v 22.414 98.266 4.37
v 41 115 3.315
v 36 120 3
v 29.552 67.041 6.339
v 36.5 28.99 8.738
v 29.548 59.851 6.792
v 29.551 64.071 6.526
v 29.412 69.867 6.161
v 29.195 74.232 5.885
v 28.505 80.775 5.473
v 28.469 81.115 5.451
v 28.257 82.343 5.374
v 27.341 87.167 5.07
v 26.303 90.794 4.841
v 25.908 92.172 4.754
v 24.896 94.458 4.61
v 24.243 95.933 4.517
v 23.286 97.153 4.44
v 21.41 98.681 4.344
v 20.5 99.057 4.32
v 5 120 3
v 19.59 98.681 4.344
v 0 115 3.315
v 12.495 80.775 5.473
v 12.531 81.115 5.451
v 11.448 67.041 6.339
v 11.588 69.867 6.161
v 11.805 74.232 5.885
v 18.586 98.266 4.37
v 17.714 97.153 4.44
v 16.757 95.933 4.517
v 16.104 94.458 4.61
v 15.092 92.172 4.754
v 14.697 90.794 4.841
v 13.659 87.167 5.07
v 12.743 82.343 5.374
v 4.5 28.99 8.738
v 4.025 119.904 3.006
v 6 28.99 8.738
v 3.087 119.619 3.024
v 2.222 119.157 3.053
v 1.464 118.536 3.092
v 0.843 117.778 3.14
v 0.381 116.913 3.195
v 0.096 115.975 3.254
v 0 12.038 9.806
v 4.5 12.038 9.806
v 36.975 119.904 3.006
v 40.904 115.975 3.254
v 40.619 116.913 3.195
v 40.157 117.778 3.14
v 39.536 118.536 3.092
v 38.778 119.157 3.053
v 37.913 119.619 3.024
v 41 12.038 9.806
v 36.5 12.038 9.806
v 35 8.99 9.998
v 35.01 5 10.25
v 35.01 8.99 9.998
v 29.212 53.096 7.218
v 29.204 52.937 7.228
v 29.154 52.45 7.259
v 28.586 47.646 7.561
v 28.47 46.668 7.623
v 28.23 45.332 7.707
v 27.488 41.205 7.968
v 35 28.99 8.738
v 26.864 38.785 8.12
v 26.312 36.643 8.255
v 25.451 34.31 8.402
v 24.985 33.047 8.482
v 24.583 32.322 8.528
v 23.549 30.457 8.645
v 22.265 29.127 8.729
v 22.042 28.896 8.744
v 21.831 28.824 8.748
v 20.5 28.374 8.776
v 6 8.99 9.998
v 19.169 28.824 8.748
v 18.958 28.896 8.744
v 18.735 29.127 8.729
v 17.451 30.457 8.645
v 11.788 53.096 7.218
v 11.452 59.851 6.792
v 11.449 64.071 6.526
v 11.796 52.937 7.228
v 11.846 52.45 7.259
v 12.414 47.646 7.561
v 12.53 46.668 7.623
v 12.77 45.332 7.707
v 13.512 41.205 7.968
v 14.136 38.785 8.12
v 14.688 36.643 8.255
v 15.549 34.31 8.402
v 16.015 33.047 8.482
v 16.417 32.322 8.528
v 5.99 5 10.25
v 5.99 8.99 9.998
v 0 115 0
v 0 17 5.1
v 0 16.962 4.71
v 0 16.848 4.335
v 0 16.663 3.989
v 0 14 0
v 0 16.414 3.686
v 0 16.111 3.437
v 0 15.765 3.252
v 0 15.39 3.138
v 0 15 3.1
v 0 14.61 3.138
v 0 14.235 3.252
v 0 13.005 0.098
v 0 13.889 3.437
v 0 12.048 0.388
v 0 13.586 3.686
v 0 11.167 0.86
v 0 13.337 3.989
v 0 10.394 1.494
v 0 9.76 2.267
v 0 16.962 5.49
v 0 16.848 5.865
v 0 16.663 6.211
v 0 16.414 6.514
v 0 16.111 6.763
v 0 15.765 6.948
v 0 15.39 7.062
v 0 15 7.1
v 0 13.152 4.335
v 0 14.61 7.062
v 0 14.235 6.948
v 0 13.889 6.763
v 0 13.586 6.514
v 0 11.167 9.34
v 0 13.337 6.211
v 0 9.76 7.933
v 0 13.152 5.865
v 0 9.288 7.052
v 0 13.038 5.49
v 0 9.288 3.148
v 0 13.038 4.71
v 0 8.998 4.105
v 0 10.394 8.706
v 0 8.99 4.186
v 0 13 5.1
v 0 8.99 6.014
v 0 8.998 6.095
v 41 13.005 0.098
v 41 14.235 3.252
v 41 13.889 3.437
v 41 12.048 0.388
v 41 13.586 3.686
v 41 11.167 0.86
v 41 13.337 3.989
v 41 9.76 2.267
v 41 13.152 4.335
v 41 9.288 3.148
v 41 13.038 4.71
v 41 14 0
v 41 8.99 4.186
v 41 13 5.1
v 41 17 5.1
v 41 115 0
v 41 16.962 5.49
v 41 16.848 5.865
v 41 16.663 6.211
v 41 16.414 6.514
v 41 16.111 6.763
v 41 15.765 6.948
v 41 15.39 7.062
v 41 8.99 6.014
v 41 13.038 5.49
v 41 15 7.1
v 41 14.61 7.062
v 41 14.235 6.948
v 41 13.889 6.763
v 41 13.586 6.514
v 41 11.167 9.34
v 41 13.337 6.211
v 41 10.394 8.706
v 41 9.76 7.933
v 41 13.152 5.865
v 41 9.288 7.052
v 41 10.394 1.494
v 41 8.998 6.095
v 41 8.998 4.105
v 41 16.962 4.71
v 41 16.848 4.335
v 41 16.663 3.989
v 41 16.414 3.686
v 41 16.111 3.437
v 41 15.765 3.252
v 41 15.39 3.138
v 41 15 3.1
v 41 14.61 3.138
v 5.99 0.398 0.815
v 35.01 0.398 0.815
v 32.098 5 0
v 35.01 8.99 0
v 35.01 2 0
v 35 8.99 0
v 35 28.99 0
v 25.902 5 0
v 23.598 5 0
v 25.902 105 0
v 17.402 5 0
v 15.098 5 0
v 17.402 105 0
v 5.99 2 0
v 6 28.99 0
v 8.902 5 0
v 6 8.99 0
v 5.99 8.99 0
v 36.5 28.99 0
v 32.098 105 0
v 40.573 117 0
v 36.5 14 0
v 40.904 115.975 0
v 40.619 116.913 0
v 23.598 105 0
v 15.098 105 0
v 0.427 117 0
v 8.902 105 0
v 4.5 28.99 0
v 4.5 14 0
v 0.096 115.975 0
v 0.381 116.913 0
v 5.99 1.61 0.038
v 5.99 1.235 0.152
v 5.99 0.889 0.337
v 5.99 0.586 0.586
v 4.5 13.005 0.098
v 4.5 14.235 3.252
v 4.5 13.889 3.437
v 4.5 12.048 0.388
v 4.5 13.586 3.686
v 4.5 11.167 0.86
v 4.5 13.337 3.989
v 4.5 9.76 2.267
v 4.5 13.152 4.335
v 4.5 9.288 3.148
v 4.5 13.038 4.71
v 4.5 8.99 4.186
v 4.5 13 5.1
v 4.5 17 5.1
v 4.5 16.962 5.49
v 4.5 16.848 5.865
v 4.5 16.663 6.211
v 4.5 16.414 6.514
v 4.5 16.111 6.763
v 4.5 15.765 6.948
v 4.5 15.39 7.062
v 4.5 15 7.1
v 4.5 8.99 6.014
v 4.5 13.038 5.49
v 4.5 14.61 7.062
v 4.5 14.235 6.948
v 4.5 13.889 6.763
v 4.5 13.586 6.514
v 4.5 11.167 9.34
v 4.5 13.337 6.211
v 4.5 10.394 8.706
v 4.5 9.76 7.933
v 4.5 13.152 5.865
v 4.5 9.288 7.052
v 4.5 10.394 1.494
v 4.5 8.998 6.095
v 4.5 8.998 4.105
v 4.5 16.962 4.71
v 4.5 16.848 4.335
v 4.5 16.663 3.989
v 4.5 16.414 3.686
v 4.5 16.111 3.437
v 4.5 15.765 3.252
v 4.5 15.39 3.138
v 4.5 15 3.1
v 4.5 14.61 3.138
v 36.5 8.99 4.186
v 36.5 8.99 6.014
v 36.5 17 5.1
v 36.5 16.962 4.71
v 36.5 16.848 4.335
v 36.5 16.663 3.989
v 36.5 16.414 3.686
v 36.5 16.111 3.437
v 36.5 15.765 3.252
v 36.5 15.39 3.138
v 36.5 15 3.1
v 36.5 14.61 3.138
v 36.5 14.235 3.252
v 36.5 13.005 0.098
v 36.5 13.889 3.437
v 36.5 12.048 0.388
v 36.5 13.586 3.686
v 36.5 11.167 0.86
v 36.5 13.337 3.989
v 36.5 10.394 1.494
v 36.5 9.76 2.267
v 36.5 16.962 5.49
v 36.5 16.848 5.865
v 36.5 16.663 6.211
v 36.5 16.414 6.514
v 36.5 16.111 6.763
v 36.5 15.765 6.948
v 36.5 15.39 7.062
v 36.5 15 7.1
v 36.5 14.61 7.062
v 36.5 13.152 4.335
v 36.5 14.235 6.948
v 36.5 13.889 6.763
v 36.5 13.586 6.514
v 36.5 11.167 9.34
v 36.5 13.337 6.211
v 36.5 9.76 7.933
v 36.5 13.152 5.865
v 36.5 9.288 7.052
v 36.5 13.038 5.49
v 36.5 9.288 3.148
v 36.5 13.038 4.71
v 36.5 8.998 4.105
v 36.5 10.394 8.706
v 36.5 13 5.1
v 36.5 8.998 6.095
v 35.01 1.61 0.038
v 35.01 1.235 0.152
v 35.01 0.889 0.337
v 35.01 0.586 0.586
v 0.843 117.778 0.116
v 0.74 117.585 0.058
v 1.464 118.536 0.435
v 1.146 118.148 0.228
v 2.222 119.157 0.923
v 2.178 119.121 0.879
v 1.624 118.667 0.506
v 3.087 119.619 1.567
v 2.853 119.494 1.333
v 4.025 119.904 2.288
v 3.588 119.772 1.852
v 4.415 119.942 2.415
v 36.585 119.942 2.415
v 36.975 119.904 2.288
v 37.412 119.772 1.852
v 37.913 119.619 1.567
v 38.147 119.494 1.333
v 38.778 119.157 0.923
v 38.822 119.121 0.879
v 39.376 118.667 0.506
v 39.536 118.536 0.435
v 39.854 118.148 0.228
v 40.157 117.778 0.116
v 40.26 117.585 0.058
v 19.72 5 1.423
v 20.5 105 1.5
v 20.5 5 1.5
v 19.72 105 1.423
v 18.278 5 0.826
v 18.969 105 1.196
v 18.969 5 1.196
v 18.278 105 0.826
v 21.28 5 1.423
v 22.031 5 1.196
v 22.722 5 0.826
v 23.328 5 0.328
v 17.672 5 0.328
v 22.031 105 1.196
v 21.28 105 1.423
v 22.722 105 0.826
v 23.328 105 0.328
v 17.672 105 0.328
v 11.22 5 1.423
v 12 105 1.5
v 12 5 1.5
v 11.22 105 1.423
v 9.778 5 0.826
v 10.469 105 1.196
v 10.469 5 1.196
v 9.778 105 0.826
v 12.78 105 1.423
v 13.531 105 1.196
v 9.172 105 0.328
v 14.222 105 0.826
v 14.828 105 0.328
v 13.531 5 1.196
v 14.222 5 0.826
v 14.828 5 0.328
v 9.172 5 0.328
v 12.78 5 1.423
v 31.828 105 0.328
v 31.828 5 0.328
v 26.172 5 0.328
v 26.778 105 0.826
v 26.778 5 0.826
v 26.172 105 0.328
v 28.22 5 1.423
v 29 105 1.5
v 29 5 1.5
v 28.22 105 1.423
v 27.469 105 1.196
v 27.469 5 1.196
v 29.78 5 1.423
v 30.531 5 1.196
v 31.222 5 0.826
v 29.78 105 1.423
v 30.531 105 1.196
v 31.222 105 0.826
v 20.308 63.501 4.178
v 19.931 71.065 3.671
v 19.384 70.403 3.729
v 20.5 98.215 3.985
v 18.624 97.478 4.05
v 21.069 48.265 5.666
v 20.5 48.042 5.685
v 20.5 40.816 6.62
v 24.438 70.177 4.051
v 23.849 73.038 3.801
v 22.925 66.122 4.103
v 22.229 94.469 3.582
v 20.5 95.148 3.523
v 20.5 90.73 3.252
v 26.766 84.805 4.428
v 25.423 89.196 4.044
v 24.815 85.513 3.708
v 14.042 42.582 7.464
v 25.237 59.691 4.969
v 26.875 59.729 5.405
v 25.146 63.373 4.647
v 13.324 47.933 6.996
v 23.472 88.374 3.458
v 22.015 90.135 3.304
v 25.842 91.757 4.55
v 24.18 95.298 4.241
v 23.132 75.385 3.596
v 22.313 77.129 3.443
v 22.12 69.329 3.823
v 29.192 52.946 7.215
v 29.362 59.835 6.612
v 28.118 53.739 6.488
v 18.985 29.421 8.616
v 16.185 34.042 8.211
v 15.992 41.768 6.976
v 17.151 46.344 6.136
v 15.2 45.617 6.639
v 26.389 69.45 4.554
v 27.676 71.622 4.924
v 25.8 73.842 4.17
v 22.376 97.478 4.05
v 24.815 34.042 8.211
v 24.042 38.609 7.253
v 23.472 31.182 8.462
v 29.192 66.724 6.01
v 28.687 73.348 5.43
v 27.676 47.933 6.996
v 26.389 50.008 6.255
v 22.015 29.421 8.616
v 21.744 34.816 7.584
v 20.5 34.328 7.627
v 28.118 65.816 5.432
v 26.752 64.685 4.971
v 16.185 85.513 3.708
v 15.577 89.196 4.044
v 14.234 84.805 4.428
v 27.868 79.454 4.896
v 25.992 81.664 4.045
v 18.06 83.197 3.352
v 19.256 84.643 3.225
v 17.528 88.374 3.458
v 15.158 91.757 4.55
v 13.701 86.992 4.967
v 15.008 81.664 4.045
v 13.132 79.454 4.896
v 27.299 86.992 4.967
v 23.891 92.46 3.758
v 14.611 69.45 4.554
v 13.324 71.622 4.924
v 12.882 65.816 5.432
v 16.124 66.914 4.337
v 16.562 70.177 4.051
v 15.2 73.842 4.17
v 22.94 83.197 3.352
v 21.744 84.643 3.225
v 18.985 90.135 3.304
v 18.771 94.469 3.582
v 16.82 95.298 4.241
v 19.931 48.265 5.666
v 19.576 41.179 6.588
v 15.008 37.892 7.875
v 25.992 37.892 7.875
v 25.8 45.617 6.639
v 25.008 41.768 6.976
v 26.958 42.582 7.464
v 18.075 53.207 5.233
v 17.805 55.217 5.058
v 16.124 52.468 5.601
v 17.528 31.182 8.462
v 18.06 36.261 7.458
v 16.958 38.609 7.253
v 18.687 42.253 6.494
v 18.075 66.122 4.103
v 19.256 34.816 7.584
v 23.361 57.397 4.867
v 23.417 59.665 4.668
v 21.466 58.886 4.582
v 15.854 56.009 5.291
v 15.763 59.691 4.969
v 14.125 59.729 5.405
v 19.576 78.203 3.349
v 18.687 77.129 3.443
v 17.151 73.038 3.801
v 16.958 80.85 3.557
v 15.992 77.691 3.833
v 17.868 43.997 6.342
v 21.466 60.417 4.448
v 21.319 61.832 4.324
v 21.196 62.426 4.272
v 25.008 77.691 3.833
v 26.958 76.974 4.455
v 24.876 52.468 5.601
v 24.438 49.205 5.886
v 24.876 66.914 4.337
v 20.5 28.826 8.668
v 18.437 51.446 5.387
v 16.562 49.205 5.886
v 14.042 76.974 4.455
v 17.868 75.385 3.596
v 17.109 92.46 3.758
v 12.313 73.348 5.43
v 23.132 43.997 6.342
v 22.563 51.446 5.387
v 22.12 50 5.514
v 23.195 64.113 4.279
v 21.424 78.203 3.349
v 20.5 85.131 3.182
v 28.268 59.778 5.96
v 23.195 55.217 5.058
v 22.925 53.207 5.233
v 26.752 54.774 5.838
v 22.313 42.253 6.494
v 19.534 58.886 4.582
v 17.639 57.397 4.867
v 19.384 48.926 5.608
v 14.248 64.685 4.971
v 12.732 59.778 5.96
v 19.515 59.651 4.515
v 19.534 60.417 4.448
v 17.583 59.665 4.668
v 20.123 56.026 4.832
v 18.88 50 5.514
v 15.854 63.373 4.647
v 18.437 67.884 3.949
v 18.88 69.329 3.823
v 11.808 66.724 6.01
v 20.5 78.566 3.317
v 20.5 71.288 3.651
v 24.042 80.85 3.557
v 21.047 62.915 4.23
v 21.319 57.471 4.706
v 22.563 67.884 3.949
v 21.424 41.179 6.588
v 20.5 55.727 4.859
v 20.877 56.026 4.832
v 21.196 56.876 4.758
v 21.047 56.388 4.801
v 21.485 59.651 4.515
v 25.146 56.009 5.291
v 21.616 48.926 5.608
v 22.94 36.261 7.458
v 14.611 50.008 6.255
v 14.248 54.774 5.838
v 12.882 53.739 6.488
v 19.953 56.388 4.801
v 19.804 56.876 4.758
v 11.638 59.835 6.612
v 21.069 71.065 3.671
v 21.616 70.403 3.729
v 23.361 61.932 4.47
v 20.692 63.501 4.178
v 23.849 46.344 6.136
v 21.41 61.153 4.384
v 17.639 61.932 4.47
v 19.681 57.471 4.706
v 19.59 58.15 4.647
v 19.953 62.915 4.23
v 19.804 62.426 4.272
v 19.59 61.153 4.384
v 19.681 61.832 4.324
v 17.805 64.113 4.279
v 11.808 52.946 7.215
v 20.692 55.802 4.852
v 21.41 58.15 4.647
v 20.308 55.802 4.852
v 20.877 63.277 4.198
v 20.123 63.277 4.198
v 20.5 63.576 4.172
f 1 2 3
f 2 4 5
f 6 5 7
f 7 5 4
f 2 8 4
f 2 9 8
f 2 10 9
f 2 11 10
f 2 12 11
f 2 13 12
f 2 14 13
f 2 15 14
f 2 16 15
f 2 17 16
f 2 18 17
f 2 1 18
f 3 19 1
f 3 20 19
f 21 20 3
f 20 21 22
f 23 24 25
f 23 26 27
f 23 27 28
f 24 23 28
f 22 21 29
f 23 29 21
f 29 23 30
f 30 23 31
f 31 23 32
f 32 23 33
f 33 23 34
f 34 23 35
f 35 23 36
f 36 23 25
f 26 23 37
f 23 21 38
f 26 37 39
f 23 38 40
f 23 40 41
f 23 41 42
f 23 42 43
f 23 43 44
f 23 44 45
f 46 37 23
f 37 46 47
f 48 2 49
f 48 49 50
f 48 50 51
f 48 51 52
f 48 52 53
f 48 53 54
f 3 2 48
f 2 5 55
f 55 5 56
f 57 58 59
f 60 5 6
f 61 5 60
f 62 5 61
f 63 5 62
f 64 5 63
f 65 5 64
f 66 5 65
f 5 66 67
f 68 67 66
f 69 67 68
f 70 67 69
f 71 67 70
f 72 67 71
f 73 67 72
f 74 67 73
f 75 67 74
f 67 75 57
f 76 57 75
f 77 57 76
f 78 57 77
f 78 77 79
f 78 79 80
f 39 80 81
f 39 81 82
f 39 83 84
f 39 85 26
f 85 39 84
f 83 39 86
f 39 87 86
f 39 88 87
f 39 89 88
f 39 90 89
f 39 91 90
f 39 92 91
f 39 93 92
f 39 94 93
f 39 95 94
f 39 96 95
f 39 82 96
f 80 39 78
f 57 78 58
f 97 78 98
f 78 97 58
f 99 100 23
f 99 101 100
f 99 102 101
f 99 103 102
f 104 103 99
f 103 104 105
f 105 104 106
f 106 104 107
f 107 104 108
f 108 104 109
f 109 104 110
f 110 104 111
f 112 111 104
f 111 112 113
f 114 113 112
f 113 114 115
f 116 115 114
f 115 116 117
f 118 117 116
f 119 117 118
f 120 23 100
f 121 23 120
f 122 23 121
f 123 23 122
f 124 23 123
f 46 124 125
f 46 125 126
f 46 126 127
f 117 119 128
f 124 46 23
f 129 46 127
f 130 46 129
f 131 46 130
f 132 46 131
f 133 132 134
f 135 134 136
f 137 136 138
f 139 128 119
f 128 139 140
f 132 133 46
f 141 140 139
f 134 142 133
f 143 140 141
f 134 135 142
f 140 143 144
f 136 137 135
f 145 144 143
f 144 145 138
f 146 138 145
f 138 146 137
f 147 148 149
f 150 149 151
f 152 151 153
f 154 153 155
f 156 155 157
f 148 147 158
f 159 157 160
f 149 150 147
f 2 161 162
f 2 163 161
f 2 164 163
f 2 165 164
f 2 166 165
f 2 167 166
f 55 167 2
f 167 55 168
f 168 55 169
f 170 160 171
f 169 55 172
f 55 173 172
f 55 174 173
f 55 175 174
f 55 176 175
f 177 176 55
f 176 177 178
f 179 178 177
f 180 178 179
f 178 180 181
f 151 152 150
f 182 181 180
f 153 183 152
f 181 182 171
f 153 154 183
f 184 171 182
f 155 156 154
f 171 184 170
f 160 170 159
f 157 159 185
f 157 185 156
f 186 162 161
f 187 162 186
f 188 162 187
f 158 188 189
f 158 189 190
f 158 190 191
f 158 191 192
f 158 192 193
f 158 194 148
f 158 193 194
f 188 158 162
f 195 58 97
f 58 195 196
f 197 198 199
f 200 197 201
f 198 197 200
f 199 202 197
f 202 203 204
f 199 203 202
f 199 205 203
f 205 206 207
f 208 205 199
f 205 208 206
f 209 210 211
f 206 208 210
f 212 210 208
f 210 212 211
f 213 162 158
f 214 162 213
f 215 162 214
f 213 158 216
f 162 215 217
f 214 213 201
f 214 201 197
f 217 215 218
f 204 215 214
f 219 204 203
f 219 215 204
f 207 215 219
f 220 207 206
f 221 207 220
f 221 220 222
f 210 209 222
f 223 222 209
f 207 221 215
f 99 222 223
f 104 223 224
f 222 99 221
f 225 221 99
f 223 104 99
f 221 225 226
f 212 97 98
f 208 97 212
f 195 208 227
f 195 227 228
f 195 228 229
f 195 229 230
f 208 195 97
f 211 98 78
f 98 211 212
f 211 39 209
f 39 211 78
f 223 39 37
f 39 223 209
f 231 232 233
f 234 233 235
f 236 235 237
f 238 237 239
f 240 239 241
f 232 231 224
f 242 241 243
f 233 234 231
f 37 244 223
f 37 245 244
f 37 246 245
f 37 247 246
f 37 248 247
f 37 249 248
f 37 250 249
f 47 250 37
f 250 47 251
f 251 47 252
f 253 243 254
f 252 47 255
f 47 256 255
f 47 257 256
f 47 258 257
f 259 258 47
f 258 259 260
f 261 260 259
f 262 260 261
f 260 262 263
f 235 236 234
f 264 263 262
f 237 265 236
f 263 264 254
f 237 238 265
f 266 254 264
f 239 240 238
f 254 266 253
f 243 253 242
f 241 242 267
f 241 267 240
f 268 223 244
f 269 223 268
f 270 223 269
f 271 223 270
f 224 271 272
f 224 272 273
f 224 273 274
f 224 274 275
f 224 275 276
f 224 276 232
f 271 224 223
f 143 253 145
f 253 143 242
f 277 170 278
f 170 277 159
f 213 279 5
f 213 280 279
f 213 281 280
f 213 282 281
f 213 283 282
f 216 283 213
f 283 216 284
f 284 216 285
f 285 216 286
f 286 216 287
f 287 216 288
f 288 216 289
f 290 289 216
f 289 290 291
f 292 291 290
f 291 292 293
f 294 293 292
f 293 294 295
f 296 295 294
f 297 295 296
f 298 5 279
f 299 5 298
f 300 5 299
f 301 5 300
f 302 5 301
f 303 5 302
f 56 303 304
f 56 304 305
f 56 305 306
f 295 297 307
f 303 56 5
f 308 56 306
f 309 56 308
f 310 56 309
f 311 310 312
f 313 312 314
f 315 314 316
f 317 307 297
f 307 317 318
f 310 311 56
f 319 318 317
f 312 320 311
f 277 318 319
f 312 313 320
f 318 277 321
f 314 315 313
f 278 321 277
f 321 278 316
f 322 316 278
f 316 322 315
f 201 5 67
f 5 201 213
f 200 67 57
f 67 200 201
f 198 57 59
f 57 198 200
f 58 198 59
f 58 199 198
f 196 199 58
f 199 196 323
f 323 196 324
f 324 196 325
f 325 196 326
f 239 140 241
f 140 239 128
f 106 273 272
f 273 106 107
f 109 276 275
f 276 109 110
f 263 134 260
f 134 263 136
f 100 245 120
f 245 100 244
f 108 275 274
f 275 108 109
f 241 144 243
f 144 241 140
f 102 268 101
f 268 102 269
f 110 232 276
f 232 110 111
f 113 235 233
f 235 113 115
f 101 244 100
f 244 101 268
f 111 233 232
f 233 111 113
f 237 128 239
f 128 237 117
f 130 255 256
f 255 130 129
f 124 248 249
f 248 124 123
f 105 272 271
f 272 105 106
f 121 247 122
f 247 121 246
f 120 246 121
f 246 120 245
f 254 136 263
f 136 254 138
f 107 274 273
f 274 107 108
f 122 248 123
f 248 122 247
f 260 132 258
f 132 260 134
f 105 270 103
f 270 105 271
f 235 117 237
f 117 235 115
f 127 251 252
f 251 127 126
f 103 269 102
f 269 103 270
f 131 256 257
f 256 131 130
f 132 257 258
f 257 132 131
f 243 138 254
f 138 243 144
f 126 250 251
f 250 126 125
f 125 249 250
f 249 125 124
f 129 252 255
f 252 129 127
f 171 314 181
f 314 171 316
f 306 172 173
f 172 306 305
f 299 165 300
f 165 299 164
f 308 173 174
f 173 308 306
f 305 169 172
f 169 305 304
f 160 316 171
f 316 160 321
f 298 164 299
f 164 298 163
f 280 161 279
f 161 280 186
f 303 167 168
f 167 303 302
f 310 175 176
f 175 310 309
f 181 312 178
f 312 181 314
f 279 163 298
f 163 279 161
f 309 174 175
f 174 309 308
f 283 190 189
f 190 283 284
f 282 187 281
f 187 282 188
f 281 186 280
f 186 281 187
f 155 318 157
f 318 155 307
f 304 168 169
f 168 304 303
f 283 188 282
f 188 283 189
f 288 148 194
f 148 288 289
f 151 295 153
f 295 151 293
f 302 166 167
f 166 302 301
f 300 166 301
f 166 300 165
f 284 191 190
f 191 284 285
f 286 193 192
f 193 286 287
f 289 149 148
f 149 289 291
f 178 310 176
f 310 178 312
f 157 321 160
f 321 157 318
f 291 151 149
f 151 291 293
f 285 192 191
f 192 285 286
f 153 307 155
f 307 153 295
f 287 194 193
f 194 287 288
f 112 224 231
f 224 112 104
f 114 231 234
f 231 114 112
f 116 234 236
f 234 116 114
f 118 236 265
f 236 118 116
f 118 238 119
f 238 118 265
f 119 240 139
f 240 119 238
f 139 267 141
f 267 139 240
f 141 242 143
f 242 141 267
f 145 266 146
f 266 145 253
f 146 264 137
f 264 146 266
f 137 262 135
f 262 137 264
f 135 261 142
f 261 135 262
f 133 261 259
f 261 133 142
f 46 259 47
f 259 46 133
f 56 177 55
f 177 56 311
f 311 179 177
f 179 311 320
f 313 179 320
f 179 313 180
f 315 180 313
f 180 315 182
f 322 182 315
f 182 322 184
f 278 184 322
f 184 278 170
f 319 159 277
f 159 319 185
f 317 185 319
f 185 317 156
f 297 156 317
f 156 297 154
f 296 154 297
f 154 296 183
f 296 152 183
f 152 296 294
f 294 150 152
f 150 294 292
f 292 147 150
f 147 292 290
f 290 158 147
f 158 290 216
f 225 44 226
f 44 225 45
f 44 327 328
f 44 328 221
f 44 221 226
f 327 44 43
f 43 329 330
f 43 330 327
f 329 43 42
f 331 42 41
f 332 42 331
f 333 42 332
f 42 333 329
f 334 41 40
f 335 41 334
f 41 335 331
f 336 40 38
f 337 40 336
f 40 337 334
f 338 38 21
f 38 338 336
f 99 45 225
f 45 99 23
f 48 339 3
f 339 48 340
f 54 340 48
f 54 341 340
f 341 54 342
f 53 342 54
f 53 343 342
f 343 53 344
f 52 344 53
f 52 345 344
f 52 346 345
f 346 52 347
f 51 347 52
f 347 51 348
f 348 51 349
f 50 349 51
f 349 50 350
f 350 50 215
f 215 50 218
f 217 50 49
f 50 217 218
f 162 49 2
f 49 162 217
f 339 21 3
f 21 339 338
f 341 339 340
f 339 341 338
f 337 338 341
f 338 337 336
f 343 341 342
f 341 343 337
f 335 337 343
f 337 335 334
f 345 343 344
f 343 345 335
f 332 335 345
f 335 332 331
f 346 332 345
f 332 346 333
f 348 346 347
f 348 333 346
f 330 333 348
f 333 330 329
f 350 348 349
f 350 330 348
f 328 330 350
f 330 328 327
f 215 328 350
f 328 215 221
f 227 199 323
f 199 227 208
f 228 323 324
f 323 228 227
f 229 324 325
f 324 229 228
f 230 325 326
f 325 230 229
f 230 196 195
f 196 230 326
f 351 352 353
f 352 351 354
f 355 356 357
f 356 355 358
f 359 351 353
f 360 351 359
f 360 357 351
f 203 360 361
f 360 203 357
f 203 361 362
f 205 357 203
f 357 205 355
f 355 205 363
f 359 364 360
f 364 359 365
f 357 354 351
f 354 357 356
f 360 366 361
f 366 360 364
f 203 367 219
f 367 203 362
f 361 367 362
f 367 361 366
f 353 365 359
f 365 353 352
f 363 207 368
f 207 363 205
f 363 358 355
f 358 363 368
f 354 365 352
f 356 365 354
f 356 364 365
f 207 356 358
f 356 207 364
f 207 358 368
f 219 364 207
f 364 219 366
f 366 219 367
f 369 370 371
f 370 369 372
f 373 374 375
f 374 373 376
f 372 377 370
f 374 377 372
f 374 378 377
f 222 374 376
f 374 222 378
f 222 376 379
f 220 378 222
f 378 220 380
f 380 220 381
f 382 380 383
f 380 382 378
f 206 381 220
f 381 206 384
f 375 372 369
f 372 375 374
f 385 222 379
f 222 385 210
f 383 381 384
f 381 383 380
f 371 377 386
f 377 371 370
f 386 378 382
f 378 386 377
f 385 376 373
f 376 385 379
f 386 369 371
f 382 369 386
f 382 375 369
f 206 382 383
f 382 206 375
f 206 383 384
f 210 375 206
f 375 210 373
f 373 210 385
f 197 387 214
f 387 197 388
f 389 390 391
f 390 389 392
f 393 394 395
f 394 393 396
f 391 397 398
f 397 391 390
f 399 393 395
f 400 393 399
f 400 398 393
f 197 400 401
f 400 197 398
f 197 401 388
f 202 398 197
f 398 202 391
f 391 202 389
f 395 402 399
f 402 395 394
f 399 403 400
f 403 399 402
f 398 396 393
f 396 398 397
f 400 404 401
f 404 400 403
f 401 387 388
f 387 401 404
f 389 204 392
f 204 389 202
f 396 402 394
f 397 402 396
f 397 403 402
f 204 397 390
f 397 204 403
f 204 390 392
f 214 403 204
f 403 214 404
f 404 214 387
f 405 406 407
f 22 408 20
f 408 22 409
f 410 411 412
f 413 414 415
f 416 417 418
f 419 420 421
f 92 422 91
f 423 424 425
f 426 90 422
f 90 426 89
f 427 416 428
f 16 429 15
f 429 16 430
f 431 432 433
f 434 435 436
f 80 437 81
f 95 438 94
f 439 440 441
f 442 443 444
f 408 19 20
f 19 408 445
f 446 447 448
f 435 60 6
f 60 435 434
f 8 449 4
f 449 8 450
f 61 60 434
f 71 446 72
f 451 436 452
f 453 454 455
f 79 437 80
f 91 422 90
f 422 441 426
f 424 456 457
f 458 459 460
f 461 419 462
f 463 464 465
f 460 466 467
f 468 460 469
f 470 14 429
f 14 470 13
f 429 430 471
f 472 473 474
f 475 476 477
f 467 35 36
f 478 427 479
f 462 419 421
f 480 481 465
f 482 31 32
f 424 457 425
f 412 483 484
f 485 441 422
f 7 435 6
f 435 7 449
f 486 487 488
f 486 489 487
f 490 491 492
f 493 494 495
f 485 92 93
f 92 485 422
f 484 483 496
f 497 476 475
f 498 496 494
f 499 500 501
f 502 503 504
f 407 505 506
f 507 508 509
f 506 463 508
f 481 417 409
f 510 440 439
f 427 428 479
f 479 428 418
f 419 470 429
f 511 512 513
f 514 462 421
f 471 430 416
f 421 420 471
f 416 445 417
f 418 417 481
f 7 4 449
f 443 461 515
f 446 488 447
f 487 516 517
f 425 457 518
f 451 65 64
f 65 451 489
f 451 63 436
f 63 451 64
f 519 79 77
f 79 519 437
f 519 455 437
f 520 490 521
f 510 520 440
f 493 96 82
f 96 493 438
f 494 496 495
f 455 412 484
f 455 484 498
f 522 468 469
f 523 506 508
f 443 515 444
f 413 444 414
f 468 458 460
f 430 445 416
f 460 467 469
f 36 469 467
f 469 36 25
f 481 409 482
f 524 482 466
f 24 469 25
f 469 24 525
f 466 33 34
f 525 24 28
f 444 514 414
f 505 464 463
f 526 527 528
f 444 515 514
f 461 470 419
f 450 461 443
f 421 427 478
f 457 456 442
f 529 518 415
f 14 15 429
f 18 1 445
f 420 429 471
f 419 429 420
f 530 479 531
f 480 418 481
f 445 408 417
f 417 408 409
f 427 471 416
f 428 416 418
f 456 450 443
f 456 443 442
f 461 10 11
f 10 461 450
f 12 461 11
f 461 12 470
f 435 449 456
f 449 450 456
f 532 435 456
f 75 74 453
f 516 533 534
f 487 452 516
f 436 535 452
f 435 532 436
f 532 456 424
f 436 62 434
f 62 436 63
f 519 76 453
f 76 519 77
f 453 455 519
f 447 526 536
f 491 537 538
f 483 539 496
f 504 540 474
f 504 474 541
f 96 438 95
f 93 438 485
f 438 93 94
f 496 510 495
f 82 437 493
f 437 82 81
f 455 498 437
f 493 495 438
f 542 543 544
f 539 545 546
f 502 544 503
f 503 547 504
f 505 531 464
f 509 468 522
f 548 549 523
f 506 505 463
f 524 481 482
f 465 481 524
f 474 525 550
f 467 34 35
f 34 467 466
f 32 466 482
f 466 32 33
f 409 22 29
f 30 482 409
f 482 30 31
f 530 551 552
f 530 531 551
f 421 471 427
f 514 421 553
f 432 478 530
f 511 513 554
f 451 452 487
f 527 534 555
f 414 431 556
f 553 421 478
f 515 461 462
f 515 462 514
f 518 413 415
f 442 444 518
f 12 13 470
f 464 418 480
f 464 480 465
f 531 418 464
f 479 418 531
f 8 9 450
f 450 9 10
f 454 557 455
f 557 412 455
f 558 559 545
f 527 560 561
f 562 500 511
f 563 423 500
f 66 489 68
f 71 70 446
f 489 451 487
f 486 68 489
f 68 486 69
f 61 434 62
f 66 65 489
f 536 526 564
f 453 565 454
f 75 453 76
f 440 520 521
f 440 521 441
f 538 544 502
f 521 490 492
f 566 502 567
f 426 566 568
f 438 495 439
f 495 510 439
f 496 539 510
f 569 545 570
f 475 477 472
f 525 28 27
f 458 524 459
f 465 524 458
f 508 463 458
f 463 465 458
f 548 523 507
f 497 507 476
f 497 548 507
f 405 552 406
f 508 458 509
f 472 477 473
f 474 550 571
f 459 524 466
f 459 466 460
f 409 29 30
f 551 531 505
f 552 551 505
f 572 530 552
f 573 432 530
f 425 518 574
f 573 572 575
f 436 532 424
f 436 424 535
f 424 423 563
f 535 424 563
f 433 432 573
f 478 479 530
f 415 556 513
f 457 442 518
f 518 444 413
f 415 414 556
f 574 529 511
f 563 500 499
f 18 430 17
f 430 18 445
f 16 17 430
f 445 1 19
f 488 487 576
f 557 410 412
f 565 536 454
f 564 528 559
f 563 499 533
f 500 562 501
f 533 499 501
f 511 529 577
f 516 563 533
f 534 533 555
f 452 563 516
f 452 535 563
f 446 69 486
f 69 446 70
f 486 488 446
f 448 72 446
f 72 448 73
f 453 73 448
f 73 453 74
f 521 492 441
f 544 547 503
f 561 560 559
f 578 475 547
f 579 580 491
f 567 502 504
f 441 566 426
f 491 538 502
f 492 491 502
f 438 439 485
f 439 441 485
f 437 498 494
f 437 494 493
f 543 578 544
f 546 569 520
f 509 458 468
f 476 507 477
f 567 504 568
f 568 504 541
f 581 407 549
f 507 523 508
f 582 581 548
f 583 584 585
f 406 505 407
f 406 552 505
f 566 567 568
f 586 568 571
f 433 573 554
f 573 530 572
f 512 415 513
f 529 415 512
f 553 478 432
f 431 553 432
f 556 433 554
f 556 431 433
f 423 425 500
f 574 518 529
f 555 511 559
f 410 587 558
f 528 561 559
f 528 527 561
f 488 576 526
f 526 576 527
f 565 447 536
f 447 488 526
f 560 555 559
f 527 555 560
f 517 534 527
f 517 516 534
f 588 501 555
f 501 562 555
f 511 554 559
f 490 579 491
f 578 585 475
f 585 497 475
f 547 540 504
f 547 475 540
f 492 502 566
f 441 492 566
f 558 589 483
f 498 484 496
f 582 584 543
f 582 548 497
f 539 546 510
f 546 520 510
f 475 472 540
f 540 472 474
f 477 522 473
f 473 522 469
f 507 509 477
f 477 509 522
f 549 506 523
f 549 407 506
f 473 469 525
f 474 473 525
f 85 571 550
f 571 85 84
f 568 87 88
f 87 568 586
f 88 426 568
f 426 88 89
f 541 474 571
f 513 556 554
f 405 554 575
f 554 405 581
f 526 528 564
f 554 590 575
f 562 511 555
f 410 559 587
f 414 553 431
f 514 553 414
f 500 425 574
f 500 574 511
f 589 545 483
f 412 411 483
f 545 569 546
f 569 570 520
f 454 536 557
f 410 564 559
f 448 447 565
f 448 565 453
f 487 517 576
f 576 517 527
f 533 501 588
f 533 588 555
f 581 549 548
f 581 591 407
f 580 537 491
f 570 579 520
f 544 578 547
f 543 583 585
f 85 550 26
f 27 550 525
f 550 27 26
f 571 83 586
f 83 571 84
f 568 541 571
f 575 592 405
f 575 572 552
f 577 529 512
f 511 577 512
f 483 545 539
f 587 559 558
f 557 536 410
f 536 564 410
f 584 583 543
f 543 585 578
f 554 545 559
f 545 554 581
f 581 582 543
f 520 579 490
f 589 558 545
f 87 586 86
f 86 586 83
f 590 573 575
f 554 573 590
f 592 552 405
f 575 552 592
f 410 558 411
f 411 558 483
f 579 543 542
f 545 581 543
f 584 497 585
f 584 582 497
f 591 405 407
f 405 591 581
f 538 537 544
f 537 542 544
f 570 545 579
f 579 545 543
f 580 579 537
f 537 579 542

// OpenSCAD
// Designed by Isaac W. Foraker
//
// Released under Creative Commons 4 attribution license

include <MCAD/2Dshapes.scad>

// Set number of faces on circles, cylinders, etc.
$fn = 32;
// Diameter of the pins that hold this part in place
pin_dia = 3.75;
pin_hole_rad = (pin_dia+0.25)/2;

// Start with the basic shape, then sculpt out the bits we don't want.
difference() {
    // The basic tray
    rotate([0,90,0]) linear_extrude(41) polygon([
        [0,0],
        [-10.25,5],
        [-3,120],
        [0,120]
    ]);
    linear_extrude(11) {
        // Cut away 5mm from either side facing the printer
        translate([-0.01,-0.01,-0.1]) square([6,9]);
        translate([41-5.99,-0.01,-0.1]) square([6,9]);
        // Cut slits behind the holes that connect to the tray to make the part more flexible.
        translate([4.5,8.99,-0.01]) square([1.5,20]);
        translate([41-6,8.99,-0.01]) square([1.5,20]);
    }
    // Place the pin holes on the sides
    // Pin starts 13mm from inside, and is 3.75mm in diameter
    translate([-0.1,13+pin_hole_rad,5.1]) rotate([0,90,0]) cylinder(h=5.2,r=pin_hole_rad);
    translate([41.1,13+pin_hole_rad,5.1]) rotate([0,-90,0]) cylinder(h=5.2,r=pin_hole_rad);
    // Now round up some of the corners for aesthetics.
    // round pin connectors
    translate([-0.1,14,5.1]) rotate([0,90,0]) linear_extrude(5.2) donutSlice(5.1,10,180,360);
    translate([41.1,14,5.1]) rotate([0,-90,0]) linear_extrude(5.2) donutSlice(5.1,10,180,360);
    // round front corners
    translate([5,115,-0.1]) linear_extrude(5) donutSlice(5,10,90,180);
    translate([36,115,-0.1]) linear_extrude(5) donutSlice(5,10,0,90);
    // Round bottom leading edge
    translate([-0.1,117,3]) rotate([0,90,0]) linear_extrude(42) donutSlice(3,5,0,90);
    // Rount bottom back
    translate([-0.1,2,2]) rotate([0,90,0]) linear_extrude(42) donutSlice(2,5,270,360);
    
    // Carve some grooves in the bottom to help make releasing the model from the print bed easier
    translate([20.5,5,-2.5]) rotate([-90,0,0]) cylinder(h=100, r=4);
    translate([12,5,-2.5]) rotate([-90,0,0]) cylinder(h=100, r=4);
    translate([29,5,-2.5]) rotate([-90,0,0]) cylinder(h=100, r=4);
    
    translate([20.5,60,8.5]) rotate([-5,0,0]) resize([20,80,8]) sphere(r=3);
}
